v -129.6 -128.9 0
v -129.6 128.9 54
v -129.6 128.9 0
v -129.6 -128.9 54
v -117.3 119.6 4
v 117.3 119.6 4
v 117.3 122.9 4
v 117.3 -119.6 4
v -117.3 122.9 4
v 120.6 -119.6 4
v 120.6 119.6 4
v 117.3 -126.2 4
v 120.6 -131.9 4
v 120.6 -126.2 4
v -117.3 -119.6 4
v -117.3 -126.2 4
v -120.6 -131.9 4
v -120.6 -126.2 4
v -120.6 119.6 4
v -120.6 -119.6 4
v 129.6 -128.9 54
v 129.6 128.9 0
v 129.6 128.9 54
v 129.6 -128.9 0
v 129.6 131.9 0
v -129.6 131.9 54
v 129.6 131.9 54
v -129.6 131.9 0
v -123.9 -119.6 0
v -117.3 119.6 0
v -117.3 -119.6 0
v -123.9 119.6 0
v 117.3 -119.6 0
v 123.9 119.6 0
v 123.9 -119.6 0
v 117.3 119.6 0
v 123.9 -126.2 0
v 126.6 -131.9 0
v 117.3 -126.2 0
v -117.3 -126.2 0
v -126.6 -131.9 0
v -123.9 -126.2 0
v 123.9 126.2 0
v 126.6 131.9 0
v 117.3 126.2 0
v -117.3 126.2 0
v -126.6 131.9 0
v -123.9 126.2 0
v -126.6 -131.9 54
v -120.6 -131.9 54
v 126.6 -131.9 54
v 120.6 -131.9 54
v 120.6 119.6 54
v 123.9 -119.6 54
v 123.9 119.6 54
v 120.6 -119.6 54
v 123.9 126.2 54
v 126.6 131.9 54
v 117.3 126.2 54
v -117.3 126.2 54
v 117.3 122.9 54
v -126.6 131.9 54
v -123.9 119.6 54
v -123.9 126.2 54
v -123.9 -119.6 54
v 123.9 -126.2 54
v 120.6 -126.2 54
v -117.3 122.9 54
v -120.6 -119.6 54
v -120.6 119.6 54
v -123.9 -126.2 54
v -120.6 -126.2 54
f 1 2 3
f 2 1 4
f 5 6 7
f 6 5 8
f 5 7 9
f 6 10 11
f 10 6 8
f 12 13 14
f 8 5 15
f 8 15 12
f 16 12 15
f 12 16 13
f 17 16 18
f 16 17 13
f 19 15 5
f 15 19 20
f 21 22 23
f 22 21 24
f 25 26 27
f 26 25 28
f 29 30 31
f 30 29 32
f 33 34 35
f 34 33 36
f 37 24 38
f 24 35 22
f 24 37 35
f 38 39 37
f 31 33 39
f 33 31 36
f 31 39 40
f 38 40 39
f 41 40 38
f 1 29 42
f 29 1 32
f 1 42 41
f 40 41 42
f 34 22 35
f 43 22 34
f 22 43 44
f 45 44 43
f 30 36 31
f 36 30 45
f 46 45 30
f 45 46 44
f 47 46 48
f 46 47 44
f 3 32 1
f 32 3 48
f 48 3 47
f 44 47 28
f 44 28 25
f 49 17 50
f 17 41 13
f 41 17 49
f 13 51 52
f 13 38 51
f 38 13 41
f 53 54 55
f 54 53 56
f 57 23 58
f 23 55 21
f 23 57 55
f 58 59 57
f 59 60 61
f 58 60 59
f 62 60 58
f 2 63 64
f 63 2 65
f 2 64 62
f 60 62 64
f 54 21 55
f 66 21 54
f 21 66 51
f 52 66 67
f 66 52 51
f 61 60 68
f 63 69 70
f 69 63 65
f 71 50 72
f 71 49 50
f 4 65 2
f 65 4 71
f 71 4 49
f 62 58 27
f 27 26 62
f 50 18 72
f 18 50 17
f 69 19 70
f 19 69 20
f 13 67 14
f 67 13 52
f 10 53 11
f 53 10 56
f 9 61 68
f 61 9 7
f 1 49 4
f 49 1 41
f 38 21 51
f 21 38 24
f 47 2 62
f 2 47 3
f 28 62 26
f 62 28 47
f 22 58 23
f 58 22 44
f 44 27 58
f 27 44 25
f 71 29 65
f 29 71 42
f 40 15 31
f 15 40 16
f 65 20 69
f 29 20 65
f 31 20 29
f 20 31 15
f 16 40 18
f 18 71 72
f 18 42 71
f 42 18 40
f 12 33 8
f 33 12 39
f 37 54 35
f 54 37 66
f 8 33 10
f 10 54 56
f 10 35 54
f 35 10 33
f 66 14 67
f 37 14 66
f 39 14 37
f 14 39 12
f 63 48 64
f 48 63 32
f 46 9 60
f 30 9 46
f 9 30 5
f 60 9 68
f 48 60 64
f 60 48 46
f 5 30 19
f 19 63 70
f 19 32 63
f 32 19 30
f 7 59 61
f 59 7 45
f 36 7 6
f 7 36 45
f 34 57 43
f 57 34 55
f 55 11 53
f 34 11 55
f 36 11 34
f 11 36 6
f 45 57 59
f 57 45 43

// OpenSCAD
// SUPERSEDED 2026-09-10 — the fused floor+walls design below warped
// badly (large flat floor pulling against tall walls rising off it).
// Replaced by 4 separate parts: shelf_side.scad (x2, left/right),
// shelf_back.scad, shelf_floor.scad — each with a much simpler,
// warp-resistant cross-section, joined by a diagonal cut through the
// post socket at each back corner (post pins the seam once glued) and a
// rabbet notch for the floor to glue into. Kept here for reference only
// — do not print from this file.
//
// WheresDat — Shelf: floor + 3 raised solid walls (left, right, back),
// open front and open top. Replaces the earlier full-height triangulated
// side/back panel plan — folding the bracing directly into each shelf's
// own thick walls is simpler and plenty strong for the material cost,
// without a separate tall panel + notch + lattice design to build and
// print in pieces. "We are overengineering at this point" — 2026-09-07.
//
// wall_thickness is a deliberate number, not a leftover from the cap's
// socket margin: 9mm = post_size (6mm, the post itself, sitting flush
// against the wall's inner/tray-facing face) + min_wall (3mm of solid
// material beyond the post's outer face). Trays reference the post's
// INNER face directly — already confirmed to clear comfortably against
// shelf_unit_cap.scad's post_spacing numbers.
//
// Front stays open between the two front posts — that's where the 2mm
// rod stopper/brace goes (a separate feature, not built here) and where
// trays slide in and out. But each front post still gets its own small
// corner collar (same cross-section as the walls, not connected to each
// other) rising the full wall_height — without it the front posts would
// only be gripped by the 4mm floor at each shelf level, vs. the full
// wall_height everywhere else. That mismatch is what stacking 8 shelves
// into one continuous wall depends on being consistent at all 4 corners.
//
// Not yet rendered/validated — same caveat as every other file here.
// Test-fit one corner (post through a socket, into the wall) against a
// real post before committing to a full shelf x 8 levels x however many
// units — "see where it goes" per the simplification call.

/* [Printer] */
max_footprint = 280; // mm — same brim-margin reasoning as the other hardware files

/* [Post geometry — copy of shelf_unit_cap.scad's values] */
post_size      = 6;   // mm, square cross-section
post_clearance = 0.3; // mm, per-side fit clearance so the post slides through cleanly

/* [Footprint — copy of shelf_unit_cap.scad's derived post_spacing] */
post_spacing_x = 241.2; // mm — must match shelf_unit_cap.scad
post_spacing_y = 245.8; // mm — must match shelf_unit_cap.scad

/* [Shelf construction] */
min_wall        = 3;  // mm — same hard constraint as the other files
wall_thickness  = post_size + min_wall; // 9mm — post flush on the inner face, min_wall of material beyond it
floor_thickness = 4;  // mm
// Deliberate, not a guess: 8 shelves x 50mm = the full 400mm usable
// post span (420mm rod minus 10mm consumed by each cap). Stacked with
// zero gap, each shelf's wall top butts directly against the next
// shelf's floor, so the walls form one continuous side/back surface
// floor-to-ceiling instead of a short lip with open post between levels.
wall_height     = 50; // mm

// ---------------------------------------------------------------------
// Derived geometry
// ---------------------------------------------------------------------

// Floor covers the full footprint symmetrically (like the cap) even
// though only 3 of its 4 edges get a raised wall — keeps all 4 post
// sockets simple and consistent instead of special-casing the front.
floor_x = post_spacing_x + 2 * wall_thickness;
floor_y = post_spacing_y + 2 * wall_thickness;

assert(floor_x <= max_footprint,
    str("Shelf X (", floor_x, "mm) exceeds max_footprint (", max_footprint, "mm)"));
assert(floor_y <= max_footprint,
    str("Shelf Y (", floor_y, "mm) exceeds max_footprint (", max_footprint, "mm)"));

// Full-height corner chamfer (2026-09-08 revision) — 2 x 45s instead of
// 1 sharp 90, running the whole vertical edge top to bottom rather than
// just relieving the base. Different from the tray/box treatment on
// purpose: this is a tall standing part (54mm), so the hard corner runs
// the full wall height, not just the print-bed contact point.
chamfer_size   = 3;  // mm, cut along each edge meeting at the corner
chamfer_height = floor_thickness + wall_height; // mm — full part height, not just the base

module base_chamfer_cut(width, depth, size, height) {
    corners = [[0, 0], [width, 0], [0, depth], [width, depth]];
    for (c = corners) {
        dx = (c[0] == 0) ? 1 : -1;
        dy = (c[1] == 0) ? 1 : -1;
        translate([c[0], c[1], -0.5])
            linear_extrude(height = height + 0.5)
                polygon([[0, 0], [dx * size, 0], [0, dy * size]]);
    }
}

module post_socket(x, y, cut_height) {
    // Through-slot spanning the full local material height (floor alone
    // at the front corners, floor + wall everywhere a wall exists) —
    // +1 total (0.5 each end) so the cut clears both faces cleanly.
    translate([x, y, cut_height / 2])
        cube([post_size + 2 * post_clearance, post_size + 2 * post_clearance, cut_height + 1], center = true);
}

module shelf() {
    difference() {
        union() {
            // Floor slab, full footprint.
            translate([0, 0, floor_thickness / 2])
                cube([floor_x, floor_y, floor_thickness], center = true);

            // Left wall
            translate([-(floor_x - wall_thickness) / 2, 0, floor_thickness + wall_height / 2])
                cube([wall_thickness, floor_y, wall_height], center = true);

            // Right wall
            translate([(floor_x - wall_thickness) / 2, 0, floor_thickness + wall_height / 2])
                cube([wall_thickness, floor_y, wall_height], center = true);

            // Back wall
            translate([0, (floor_y - wall_thickness) / 2, floor_thickness + wall_height / 2])
                cube([floor_x, wall_thickness, wall_height], center = true);

            // Front corner collars — same cross-section as the side
            // walls, same height, but NOT connected across the front:
            // the opening between them stays fully clear.
            translate([-(floor_x - wall_thickness) / 2, -(floor_y - wall_thickness) / 2, floor_thickness + wall_height / 2])
                cube([wall_thickness, wall_thickness, wall_height], center = true);
            translate([(floor_x - wall_thickness) / 2, -(floor_y - wall_thickness) / 2, floor_thickness + wall_height / 2])
                cube([wall_thickness, wall_thickness, wall_height], center = true);
        }

        // Post sockets, all 4 corners — all the same depth now, floor
        // plus wall (or corner collar), since every corner has the same
        // total local material height.
        post_socket(-post_spacing_x / 2, -post_spacing_y / 2, floor_thickness + wall_height); // front-left
        post_socket(post_spacing_x / 2, -post_spacing_y / 2, floor_thickness + wall_height);  // front-right
        post_socket(-post_spacing_x / 2, post_spacing_y / 2, floor_thickness + wall_height);  // back-left
        post_socket(post_spacing_x / 2, post_spacing_y / 2, floor_thickness + wall_height);   // back-right

        // Only the floor's own footprint touches the print bed — the
        // walls rise from it, not the plate, so this is the one corner
        // set that needs relief.
        translate([-floor_x / 2, -floor_y / 2, 0])
            base_chamfer_cut(floor_x, floor_y, chamfer_size, chamfer_height);
    }
}

shelf();
